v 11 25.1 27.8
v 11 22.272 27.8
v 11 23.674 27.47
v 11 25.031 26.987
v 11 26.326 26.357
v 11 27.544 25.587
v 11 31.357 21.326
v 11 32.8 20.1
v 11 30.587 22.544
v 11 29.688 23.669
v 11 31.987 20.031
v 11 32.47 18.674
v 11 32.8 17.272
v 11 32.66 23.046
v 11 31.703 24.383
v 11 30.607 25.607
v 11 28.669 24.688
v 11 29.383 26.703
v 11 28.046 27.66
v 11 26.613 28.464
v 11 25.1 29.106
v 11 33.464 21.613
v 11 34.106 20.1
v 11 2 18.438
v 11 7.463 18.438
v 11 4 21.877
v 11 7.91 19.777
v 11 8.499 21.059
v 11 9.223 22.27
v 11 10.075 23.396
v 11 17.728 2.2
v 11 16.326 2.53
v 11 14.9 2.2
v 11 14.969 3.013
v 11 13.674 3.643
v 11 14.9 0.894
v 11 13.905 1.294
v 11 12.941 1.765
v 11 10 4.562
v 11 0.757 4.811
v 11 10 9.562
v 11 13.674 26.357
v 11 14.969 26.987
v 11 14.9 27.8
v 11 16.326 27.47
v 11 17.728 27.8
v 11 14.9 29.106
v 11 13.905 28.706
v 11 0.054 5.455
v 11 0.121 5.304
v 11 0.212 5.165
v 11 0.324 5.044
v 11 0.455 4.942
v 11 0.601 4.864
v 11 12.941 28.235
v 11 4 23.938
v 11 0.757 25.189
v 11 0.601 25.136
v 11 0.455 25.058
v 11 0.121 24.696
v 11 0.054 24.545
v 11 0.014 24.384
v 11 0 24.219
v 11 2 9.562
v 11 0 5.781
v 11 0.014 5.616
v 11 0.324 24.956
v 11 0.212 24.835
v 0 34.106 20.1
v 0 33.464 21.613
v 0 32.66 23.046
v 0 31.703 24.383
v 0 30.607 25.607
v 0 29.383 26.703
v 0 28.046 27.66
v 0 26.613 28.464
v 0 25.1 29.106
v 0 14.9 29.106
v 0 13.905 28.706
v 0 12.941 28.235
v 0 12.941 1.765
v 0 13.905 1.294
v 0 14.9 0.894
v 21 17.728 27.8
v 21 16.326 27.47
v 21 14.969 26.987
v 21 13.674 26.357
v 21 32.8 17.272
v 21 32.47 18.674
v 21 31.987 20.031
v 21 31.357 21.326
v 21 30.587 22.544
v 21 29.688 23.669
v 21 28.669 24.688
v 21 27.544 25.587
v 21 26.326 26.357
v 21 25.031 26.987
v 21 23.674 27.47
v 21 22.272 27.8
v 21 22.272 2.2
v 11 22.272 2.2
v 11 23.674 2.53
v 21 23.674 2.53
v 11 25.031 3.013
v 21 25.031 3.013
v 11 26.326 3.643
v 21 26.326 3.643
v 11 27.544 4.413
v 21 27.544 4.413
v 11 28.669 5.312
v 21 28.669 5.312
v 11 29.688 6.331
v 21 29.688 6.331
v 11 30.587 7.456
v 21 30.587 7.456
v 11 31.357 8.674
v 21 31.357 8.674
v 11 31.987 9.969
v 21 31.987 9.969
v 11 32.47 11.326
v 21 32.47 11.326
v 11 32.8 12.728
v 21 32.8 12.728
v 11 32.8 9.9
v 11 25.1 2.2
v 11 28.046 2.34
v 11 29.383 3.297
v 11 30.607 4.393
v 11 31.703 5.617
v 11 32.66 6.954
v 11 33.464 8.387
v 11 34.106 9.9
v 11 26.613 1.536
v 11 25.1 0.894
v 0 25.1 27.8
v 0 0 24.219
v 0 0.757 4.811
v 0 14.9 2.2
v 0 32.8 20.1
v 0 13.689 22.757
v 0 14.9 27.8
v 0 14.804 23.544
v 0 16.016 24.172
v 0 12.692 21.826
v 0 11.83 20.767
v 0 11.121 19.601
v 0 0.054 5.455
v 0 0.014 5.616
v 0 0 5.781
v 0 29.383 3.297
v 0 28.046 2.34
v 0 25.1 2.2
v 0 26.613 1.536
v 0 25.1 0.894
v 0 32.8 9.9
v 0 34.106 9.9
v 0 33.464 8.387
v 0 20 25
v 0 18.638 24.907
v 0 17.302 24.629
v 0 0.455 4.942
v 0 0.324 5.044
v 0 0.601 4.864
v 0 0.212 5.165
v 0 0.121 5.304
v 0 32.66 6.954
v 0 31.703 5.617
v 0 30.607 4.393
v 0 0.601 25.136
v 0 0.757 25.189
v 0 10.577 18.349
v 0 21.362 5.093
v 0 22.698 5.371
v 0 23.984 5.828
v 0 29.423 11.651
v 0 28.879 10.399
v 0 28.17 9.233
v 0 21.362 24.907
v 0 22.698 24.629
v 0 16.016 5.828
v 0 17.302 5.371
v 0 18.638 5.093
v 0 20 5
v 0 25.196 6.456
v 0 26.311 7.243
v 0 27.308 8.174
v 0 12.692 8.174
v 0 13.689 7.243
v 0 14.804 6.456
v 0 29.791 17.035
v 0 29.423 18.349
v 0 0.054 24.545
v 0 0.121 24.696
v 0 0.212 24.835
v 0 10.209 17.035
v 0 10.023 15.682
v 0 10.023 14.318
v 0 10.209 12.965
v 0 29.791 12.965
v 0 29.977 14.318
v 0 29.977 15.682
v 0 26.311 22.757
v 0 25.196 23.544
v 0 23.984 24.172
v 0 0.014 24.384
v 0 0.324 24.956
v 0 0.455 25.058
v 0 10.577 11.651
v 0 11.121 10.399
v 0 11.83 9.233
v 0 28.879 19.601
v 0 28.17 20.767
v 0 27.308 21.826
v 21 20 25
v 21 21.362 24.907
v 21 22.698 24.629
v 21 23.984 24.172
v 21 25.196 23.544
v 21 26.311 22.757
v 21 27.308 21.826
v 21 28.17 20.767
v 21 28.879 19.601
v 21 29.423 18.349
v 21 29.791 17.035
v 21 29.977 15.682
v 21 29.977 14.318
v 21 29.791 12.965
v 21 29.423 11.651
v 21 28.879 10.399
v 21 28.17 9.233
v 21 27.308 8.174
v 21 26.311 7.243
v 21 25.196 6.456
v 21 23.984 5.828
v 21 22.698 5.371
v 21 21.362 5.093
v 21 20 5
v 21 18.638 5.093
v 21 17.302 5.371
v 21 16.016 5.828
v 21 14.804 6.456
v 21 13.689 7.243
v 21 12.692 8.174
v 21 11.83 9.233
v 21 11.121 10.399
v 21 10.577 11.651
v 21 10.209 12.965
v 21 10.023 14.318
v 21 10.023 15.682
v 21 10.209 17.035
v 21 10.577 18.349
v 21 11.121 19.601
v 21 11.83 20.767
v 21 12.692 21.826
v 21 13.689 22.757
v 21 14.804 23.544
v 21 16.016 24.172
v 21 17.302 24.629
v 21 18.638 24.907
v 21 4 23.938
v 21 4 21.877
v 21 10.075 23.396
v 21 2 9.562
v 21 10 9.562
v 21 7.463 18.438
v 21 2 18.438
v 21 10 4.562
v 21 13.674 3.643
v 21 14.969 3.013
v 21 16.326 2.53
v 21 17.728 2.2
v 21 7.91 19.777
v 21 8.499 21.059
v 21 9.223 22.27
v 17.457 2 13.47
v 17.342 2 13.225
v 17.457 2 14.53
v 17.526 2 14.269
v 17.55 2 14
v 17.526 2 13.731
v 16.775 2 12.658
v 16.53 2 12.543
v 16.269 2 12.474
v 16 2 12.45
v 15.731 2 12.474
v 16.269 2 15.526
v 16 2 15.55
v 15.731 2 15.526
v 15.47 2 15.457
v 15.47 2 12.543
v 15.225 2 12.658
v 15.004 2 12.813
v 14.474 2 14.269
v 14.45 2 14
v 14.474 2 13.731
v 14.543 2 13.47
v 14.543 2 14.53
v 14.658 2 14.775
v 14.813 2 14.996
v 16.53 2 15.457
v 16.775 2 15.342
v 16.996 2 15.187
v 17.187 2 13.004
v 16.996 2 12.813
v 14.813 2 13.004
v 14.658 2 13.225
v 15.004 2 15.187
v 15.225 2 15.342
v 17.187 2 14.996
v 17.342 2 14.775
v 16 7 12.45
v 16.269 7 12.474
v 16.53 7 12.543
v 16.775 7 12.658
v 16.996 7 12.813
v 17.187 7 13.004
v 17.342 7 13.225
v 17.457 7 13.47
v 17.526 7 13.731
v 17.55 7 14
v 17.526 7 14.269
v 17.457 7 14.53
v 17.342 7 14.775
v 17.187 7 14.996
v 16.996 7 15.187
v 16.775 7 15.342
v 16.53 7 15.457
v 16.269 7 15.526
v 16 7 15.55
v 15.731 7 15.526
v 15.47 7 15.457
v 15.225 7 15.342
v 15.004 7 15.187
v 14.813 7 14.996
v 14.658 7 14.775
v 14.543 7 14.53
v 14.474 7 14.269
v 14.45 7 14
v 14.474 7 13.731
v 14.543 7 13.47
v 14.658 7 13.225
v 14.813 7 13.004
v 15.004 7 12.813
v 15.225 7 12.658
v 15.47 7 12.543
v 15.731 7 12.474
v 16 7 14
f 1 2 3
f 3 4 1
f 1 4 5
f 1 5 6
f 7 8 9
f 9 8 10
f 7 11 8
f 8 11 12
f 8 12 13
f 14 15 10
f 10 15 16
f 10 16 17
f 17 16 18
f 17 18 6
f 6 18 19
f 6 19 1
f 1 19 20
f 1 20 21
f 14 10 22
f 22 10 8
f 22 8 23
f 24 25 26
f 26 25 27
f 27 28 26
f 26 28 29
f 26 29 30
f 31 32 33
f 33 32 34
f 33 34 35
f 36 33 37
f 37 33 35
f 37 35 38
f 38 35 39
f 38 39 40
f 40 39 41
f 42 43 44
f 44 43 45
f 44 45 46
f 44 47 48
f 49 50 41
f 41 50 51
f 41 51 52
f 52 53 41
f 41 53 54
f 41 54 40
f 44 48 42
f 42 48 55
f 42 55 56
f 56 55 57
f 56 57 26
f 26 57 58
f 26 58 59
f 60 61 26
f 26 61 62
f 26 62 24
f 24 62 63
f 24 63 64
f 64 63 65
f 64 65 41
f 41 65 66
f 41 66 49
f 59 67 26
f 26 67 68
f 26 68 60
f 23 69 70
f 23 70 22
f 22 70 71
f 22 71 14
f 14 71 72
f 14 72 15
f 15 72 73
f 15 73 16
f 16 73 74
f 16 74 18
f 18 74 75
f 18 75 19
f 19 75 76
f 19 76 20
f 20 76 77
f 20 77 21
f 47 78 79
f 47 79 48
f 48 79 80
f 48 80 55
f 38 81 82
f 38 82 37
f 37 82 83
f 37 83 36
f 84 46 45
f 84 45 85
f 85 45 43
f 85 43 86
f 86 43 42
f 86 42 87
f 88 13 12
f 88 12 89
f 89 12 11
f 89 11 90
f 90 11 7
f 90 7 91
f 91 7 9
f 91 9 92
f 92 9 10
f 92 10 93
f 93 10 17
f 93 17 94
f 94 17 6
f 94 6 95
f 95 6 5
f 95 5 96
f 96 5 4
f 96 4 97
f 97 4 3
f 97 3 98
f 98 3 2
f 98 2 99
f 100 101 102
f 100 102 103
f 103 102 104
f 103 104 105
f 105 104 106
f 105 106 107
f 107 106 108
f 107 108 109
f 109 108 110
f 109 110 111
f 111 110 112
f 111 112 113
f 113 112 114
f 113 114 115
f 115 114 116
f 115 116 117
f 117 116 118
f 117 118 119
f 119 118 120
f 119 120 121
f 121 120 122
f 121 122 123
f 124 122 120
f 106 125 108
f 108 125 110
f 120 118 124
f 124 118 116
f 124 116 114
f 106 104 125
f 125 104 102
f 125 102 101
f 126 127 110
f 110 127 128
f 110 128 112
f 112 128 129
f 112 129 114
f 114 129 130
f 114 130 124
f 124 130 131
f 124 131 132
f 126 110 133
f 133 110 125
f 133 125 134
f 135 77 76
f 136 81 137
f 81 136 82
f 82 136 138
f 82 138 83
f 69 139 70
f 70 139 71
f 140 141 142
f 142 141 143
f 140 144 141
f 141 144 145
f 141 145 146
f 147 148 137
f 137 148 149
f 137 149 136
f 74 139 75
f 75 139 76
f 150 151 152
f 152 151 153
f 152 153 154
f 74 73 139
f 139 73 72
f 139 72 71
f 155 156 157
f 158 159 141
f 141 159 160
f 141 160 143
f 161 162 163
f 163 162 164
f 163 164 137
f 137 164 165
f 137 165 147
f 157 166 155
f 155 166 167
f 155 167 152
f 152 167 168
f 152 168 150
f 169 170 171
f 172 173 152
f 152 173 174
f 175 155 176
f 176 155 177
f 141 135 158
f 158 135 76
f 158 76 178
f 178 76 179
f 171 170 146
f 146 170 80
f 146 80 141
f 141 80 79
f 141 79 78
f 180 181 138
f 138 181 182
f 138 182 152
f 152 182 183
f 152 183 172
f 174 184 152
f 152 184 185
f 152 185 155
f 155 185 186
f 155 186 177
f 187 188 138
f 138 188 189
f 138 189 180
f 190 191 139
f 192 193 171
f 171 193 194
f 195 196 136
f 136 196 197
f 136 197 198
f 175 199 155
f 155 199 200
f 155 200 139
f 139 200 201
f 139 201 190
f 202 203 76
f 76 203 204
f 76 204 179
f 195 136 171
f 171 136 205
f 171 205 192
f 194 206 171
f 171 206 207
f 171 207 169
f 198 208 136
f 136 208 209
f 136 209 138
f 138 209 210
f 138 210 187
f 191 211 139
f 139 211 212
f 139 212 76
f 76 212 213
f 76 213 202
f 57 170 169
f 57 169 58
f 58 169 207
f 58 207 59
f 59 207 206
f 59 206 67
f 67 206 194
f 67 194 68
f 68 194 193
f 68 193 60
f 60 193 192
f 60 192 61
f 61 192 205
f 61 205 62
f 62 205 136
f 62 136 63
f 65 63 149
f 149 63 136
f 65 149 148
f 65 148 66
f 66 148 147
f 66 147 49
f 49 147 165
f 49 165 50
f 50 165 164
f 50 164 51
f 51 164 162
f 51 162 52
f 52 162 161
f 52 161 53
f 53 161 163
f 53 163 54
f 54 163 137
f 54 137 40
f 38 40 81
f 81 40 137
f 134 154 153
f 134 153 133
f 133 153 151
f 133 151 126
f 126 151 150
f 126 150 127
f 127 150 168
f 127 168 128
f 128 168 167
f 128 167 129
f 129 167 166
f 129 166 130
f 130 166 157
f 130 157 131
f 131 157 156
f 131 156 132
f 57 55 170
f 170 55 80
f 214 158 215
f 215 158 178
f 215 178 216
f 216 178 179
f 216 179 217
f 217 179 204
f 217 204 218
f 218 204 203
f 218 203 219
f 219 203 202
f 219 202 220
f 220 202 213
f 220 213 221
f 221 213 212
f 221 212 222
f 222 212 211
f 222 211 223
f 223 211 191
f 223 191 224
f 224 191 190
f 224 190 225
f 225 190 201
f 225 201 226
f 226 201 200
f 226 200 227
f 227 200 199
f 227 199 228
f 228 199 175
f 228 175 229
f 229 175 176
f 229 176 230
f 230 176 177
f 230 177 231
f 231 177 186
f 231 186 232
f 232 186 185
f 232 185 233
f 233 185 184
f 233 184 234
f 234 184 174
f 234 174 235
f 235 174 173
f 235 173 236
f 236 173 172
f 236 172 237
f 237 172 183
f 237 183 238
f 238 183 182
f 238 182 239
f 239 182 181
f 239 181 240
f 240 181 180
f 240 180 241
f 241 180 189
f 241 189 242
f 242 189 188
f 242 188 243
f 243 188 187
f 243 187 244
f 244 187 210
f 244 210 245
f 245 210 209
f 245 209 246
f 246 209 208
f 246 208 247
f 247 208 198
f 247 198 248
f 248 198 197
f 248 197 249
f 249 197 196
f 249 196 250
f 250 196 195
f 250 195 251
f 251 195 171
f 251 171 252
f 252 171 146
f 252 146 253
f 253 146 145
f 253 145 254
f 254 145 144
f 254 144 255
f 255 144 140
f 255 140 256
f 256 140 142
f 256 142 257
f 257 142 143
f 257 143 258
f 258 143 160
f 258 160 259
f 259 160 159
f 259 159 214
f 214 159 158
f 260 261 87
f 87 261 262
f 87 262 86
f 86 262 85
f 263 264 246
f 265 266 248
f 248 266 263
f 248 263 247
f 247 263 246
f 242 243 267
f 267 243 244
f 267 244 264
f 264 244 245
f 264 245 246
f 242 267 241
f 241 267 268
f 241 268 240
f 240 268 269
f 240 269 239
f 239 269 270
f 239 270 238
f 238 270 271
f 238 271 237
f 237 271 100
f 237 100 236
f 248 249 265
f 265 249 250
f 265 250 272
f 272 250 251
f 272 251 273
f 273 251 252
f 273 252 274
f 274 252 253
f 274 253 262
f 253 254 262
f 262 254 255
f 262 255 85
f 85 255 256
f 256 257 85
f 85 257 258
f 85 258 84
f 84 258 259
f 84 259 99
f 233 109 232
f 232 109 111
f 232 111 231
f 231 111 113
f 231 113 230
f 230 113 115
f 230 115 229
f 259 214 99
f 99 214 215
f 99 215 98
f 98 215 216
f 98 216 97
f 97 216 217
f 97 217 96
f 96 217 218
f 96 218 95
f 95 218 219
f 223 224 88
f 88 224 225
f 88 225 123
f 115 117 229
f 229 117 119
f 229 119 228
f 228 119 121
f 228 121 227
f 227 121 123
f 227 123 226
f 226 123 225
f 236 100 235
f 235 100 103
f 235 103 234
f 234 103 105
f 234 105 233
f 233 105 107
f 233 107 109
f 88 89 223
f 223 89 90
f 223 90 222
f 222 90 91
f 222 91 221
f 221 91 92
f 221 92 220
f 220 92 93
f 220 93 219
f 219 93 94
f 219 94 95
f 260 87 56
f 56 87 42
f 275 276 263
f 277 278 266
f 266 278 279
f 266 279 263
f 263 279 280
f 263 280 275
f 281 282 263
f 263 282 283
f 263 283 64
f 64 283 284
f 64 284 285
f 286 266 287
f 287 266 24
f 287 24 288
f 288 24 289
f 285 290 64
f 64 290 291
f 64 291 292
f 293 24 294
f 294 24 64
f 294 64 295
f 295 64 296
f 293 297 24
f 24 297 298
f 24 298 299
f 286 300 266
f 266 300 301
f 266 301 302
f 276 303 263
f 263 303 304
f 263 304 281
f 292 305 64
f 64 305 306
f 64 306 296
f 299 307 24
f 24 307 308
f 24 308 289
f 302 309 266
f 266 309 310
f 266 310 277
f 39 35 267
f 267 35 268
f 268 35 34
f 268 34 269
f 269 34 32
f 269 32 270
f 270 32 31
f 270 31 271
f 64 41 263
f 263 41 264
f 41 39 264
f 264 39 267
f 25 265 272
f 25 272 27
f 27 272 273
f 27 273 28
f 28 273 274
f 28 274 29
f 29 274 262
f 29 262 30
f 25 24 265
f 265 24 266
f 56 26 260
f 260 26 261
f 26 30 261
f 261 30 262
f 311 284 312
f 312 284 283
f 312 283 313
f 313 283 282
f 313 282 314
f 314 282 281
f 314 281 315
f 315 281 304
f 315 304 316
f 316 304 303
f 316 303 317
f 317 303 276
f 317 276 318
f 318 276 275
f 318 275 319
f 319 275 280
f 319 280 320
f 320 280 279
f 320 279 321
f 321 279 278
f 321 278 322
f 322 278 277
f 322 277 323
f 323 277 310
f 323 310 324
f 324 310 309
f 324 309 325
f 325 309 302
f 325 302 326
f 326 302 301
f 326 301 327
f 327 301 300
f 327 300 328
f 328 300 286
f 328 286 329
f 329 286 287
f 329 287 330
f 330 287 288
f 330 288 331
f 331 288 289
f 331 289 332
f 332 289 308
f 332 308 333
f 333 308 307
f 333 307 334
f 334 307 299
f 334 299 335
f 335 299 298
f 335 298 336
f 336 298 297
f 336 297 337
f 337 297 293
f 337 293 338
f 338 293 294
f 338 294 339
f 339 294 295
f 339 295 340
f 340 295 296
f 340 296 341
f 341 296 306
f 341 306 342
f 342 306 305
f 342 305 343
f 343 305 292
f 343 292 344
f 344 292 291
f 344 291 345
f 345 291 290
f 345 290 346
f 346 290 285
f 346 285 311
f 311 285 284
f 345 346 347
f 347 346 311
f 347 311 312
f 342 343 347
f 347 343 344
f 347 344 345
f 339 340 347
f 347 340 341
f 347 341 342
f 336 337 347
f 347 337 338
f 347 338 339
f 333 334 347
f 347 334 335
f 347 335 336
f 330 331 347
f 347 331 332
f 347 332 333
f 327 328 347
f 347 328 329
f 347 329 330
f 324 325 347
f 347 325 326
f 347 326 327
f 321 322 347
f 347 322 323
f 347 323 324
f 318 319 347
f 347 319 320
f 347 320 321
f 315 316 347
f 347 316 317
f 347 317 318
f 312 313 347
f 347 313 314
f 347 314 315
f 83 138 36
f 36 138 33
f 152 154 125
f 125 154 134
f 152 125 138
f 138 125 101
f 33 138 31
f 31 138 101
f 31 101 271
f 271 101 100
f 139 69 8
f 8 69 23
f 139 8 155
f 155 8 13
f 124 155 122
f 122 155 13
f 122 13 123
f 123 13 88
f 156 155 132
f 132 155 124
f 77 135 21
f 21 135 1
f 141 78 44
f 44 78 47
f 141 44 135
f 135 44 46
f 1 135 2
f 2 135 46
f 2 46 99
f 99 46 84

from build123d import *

# Parameters (mm, degrees)
CROQUIS1_R              = 10
SALIENTE_EXTRUIR1_DEPTH = 11
CROQUIS2_R              = 10
SALIENTE_EXTRUIR2_DEPTH = 10
CORTAR_EXTRUIR3_START   = -10
CORTAR_EXTRUIR3_DEPTH   = 10
CROQUIS8_R              = 1.55
CORTAR_EXTRUIR4_DEPTH   = 5
CORTAR_EXTRUIR5_REACH   = 52.656


with BuildPart() as part:
    # Croquis1 → Saliente-Extruir1 (new body)
    with BuildSketch(Plane(origin=(0, 0, 0), x_dir=(0, 0, -1), z_dir=(1, 0, 0))):
        with BuildLine():
            Line((-5.780776406, 0), (-24.219223594, 0))
            ThreePointArc((-24.219223594, 0), (-24.834635803, 0.211794562), (-25.189366094, 0.757464375))
            Line((-25.189366094, 0.757464375), (-28.235294118, 12.941176471))
            ThreePointArc((-28.235294118, 12.941176471), (-15, 35), (-1.764705882, 12.941176471))
            Line((-1.764705882, 12.941176471), (-4.810633906, 0.757464375))
            ThreePointArc((-4.810633906, 0.757464375), (-5.165364197, 0.211794562), (-5.780776406, 0))
        make_face()
        with Locations((-15, 20)):
            Circle(CROQUIS1_R, mode=Mode.SUBTRACT)
    extrude(amount=SALIENTE_EXTRUIR1_DEPTH)

    # Croquis2 → Saliente-Extruir2 (add)
    with BuildSketch(Plane(origin=(11, 0, 0), x_dir=(0, 0, -1), z_dir=(1, 0, 0))):
        with BuildLine():
            Line((-23.438447187, 2), (-6.561552813, 2))
            Line((-6.561552813, 2), (-3.643105675, 13.673788552))
            ThreePointArc((-3.643105675, 13.673788552), (-15, 33), (-26.356894325, 13.673788552))
            Line((-26.356894325, 13.673788552), (-23.438447187, 2))
        make_face()
        with Locations((-15, 20)):
            Circle(CROQUIS2_R, mode=Mode.SUBTRACT)
    extrude(amount=SALIENTE_EXTRUIR2_DEPTH)

    # Croquis3 → Cortar-Extruir3 (cut)
    with BuildSketch(Plane(origin=(21, 0, 0), x_dir=(0, 0, -1), z_dir=(1, 0, 0)).offset(CORTAR_EXTRUIR3_START)):
        Polygon((-9.561552813, 2), (-9.561552813, 10), (-4.561552813, 10), (-6.561552813, 2), align=None)
        with BuildLine():
            Line((-23.438447187, 2), (-18.438447187, 2))
            Line((-18.438447187, 2), (-18.438447187, 6.945227656))
            Line((-18.438447187, 6.945227656), (-18.438447187, 7.462971606))
            ThreePointArc((-18.438447187, 7.462971606), (-21.059353424, 8.498511571), (-23.395524099, 10.074518898))
            Line((-23.395524099, 10.074518898), (-23.194590952, 9.270786312))
            Line((-23.194590952, 9.270786312), (-21.876894374, 4))
            Line((-21.876894374, 4), (-23.938447187, 4))
            Line((-23.938447187, 4), (-23.438447187, 2))
        make_face()
    extrude(amount=CORTAR_EXTRUIR3_DEPTH, mode=Mode.SUBTRACT)

    # Croquis8 → Cortar-Extruir4 (cut)
    with BuildSketch(Plane.XZ.offset(-2)):
        with Locations(Location((16, 14, 0), (0, 0, 270))):
            Circle(CROQUIS8_R)
    extrude(amount=-CORTAR_EXTRUIR4_DEPTH, mode=Mode.SUBTRACT)

    # Croquis9 → Cortar-Extruir5 (cut, up to next)
    with BuildSketch(Plane.ZY, mode=Mode.PRIVATE) as cortar_extruir5_sk1:
        with BuildLine():
            Line((2.2, 20), (2.2, 25.1))
            Line((2.2, 25.1), (0.893618465, 25.1))
            ThreePointArc((0.893618465, 25.1), (0, 20), (0.893618465, 14.9))
            Line((0.893618465, 14.9), (2.2, 14.9))
            Line((2.2, 14.9), (2.2, 20))
        make_face()
    cortar_extruir5_tool1 = extrude(cortar_extruir5_sk1.sketch, amount=-CORTAR_EXTRUIR5_REACH, mode=Mode.PRIVATE) & part.part
    # Croquis9 → Cortar-Extruir5 (cut, up to next)
    with BuildSketch(Plane.ZY, mode=Mode.PRIVATE) as cortar_extruir5_sk2:
        with BuildLine():
            Line((15, 32.8), (20.1, 32.8))
            Line((20.1, 32.8), (20.1, 34.106381535))
            ThreePointArc((20.1, 34.106381535), (15, 35), (9.9, 34.106381535))
            Line((9.9, 34.106381535), (9.9, 32.8))
            Line((9.9, 32.8), (15, 32.8))
        make_face()
    cortar_extruir5_tool2 = extrude(cortar_extruir5_sk2.sketch, amount=-CORTAR_EXTRUIR5_REACH, mode=Mode.PRIVATE) & part.part
    # Croquis9 → Cortar-Extruir5 (cut, up to next)
    with BuildSketch(Plane.ZY, mode=Mode.PRIVATE) as cortar_extruir5_sk3:
        with BuildLine():
            Line((27.8, 14.9), (29.106381535, 14.9))
            ThreePointArc((29.106381535, 14.9), (30, 20), (29.106381535, 25.1))
            Line((29.106381535, 25.1), (27.8, 25.1))
            Line((27.8, 25.1), (27.8, 20))
            Line((27.8, 20), (27.8, 14.9))
        make_face()
    cortar_extruir5_tool3 = extrude(cortar_extruir5_sk3.sketch, amount=-CORTAR_EXTRUIR5_REACH, mode=Mode.PRIVATE) & part.part
    add(cortar_extruir5_tool1.solids().sort_by_distance((0, 20, 1.228659))[0], mode=Mode.SUBTRACT)
    add(cortar_extruir5_tool2.solids().sort_by_distance((0, 33.771341, 15))[0], mode=Mode.SUBTRACT)
    add(cortar_extruir5_tool3.solids().sort_by_distance((0, 20, 28.771341))[0], mode=Mode.SUBTRACT)


solid = part.part
